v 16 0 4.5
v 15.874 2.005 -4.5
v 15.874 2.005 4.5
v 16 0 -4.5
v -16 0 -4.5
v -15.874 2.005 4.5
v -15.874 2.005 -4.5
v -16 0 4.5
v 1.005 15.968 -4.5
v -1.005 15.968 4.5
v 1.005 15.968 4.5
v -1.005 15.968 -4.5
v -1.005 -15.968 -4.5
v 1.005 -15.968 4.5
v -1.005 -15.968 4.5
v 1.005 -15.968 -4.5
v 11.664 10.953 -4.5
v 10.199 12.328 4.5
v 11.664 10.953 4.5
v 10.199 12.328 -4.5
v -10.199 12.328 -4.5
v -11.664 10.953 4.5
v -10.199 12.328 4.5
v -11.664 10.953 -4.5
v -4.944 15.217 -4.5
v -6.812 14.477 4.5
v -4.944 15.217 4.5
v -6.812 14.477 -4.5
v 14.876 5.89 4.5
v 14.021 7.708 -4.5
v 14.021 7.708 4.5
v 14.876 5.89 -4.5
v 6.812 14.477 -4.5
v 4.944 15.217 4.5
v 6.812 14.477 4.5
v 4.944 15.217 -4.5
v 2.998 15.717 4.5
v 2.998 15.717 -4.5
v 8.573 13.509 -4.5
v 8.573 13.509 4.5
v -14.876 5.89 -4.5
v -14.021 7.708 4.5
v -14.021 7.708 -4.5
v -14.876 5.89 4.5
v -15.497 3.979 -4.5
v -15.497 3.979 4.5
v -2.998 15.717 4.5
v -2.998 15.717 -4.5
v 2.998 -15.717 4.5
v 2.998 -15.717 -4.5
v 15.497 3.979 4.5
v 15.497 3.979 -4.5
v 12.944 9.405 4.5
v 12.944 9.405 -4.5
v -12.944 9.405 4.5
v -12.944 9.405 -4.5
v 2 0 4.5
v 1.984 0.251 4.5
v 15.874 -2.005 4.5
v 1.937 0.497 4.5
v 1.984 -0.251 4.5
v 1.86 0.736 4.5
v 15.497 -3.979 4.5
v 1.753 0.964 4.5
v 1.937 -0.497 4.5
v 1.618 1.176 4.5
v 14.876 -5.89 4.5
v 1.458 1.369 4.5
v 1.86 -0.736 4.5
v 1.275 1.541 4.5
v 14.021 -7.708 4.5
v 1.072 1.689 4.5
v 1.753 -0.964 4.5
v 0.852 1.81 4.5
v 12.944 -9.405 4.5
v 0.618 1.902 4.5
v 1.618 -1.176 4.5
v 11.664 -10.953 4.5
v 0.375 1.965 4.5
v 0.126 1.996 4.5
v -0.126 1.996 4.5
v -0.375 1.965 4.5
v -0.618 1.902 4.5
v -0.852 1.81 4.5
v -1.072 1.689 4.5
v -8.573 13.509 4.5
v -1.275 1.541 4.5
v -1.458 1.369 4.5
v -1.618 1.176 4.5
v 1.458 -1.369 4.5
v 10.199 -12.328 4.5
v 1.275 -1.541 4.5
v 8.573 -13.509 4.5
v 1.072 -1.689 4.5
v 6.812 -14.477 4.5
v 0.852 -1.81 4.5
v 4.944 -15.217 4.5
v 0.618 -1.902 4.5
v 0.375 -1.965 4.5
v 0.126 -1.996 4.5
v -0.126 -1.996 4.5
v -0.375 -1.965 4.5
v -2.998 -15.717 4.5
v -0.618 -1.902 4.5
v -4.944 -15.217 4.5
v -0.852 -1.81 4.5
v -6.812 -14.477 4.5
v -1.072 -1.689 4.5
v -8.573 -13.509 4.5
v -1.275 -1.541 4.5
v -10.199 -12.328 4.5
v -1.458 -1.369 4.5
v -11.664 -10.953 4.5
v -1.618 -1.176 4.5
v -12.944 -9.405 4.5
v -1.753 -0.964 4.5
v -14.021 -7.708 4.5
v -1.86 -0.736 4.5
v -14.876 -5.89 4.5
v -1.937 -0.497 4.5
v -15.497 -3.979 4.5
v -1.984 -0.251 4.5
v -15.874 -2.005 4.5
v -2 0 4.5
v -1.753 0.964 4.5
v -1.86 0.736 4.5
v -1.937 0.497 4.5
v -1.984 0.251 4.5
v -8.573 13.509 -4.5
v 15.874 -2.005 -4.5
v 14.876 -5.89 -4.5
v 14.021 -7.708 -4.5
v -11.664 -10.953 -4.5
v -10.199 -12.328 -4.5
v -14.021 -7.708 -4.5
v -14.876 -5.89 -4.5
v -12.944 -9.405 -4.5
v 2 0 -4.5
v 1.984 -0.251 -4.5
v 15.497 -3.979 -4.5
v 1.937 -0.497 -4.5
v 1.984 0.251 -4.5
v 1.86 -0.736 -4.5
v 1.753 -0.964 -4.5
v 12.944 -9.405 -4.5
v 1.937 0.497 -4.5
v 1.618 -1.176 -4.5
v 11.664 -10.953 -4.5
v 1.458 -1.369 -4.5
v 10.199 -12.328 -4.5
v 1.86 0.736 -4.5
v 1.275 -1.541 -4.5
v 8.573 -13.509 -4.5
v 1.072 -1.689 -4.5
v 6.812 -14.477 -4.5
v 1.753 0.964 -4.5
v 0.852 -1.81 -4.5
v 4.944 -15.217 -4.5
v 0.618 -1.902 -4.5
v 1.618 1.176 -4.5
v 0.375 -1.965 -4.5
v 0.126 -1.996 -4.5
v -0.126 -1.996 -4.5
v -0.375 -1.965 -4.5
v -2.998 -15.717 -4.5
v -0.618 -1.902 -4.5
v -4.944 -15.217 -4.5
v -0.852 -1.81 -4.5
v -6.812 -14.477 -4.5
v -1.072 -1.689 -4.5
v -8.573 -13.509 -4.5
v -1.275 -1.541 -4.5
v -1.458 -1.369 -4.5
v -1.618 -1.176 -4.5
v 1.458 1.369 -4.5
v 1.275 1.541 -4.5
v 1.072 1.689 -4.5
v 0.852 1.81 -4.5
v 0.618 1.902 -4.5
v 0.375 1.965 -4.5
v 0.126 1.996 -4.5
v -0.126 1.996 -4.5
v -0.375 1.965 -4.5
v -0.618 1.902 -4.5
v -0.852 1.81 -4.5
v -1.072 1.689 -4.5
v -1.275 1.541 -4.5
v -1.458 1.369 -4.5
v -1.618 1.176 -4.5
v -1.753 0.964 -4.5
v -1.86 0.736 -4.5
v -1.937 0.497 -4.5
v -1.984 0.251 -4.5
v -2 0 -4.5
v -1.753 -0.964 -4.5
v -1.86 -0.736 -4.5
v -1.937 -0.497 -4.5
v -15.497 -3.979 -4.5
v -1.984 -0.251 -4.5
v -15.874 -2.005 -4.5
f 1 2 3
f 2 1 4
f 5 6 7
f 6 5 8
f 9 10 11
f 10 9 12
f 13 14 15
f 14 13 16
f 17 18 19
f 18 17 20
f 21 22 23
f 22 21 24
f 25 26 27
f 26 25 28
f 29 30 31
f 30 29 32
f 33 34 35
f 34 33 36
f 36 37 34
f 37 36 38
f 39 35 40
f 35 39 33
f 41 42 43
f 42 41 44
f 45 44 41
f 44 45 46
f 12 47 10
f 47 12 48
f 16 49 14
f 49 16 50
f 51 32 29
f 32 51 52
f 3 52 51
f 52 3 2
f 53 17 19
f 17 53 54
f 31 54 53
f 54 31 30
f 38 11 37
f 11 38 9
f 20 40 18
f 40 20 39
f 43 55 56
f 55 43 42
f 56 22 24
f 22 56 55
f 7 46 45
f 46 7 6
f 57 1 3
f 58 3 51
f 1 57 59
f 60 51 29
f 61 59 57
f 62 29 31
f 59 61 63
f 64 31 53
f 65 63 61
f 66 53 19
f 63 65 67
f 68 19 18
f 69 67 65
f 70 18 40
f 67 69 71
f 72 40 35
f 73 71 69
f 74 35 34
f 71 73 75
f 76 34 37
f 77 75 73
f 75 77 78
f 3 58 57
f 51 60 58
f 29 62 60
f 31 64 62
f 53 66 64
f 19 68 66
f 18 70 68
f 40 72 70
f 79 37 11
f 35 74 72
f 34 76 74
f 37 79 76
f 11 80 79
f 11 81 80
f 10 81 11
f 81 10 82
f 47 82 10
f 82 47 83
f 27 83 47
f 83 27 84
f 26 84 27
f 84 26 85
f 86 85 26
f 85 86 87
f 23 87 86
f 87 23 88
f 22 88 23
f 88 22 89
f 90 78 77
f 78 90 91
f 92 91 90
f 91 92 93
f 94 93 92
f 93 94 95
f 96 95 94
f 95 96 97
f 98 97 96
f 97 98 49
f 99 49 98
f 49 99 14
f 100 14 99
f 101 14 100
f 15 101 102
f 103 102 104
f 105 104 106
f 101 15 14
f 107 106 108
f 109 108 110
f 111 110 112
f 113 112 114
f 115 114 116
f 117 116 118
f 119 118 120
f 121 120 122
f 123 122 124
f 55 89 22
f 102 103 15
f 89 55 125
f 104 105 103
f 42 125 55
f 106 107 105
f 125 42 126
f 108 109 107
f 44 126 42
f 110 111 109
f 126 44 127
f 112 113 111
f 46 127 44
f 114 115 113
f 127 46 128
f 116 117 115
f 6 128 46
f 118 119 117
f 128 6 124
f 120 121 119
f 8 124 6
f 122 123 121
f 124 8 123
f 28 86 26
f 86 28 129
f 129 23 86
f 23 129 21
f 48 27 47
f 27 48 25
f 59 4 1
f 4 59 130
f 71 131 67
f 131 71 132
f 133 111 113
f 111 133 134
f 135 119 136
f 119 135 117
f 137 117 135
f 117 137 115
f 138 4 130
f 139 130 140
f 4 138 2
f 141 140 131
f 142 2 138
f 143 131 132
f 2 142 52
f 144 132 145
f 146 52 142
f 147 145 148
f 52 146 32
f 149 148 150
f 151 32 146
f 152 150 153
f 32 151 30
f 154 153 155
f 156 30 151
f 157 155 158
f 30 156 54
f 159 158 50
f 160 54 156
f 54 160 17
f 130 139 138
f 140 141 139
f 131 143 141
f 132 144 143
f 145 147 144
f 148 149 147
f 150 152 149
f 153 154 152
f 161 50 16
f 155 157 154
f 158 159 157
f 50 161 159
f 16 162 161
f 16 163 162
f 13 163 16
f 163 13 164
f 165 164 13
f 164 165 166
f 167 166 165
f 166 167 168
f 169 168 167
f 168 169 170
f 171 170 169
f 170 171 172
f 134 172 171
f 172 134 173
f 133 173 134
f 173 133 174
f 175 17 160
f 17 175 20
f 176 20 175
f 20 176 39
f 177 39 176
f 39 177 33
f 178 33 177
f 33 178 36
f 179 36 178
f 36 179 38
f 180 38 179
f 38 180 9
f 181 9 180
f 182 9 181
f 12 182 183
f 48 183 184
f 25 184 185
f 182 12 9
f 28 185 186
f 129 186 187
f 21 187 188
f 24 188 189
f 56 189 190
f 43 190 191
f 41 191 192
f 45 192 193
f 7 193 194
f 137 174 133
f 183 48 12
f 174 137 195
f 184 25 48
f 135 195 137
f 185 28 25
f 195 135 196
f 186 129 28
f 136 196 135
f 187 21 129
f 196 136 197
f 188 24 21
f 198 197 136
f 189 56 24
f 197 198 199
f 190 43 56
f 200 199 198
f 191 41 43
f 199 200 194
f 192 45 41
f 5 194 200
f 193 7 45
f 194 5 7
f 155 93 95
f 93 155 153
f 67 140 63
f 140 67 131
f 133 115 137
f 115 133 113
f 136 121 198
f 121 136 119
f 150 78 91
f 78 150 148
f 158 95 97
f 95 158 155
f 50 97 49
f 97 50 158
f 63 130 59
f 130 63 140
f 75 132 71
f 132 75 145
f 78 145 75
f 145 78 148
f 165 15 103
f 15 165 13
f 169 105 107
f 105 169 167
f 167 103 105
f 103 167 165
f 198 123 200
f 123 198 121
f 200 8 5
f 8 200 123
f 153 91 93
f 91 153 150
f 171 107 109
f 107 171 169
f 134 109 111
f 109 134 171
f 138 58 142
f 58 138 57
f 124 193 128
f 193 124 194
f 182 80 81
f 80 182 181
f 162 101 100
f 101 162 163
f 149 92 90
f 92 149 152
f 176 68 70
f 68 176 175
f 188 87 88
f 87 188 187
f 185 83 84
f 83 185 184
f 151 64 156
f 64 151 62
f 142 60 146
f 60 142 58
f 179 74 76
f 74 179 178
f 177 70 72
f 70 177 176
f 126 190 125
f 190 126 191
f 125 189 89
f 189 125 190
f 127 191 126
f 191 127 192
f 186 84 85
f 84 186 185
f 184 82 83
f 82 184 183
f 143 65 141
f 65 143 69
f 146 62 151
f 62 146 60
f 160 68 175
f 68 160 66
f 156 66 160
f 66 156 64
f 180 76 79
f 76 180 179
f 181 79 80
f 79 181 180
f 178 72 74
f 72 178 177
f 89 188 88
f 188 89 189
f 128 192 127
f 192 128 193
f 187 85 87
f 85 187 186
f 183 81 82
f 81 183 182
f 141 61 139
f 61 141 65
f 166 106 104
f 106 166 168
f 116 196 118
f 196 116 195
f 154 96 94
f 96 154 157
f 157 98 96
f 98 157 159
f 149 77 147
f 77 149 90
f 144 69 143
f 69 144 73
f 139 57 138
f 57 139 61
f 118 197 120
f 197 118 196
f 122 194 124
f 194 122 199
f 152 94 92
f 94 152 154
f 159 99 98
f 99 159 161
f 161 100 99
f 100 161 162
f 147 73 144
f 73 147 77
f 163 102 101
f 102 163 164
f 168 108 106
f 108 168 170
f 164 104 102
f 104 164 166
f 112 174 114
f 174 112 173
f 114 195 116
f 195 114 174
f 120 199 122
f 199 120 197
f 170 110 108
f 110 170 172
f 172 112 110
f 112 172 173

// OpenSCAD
$fn = 50;


difference() {
	union() {
		translate(v = [0, 0, -4.5000000000]) {
			cylinder(h = 9, r = 16.0000000000);
		}
	}
	union() {
		translate(v = [0, 0, -100.0000000000]) {
			cylinder(h = 200, r = 2);
		}
	}
}
